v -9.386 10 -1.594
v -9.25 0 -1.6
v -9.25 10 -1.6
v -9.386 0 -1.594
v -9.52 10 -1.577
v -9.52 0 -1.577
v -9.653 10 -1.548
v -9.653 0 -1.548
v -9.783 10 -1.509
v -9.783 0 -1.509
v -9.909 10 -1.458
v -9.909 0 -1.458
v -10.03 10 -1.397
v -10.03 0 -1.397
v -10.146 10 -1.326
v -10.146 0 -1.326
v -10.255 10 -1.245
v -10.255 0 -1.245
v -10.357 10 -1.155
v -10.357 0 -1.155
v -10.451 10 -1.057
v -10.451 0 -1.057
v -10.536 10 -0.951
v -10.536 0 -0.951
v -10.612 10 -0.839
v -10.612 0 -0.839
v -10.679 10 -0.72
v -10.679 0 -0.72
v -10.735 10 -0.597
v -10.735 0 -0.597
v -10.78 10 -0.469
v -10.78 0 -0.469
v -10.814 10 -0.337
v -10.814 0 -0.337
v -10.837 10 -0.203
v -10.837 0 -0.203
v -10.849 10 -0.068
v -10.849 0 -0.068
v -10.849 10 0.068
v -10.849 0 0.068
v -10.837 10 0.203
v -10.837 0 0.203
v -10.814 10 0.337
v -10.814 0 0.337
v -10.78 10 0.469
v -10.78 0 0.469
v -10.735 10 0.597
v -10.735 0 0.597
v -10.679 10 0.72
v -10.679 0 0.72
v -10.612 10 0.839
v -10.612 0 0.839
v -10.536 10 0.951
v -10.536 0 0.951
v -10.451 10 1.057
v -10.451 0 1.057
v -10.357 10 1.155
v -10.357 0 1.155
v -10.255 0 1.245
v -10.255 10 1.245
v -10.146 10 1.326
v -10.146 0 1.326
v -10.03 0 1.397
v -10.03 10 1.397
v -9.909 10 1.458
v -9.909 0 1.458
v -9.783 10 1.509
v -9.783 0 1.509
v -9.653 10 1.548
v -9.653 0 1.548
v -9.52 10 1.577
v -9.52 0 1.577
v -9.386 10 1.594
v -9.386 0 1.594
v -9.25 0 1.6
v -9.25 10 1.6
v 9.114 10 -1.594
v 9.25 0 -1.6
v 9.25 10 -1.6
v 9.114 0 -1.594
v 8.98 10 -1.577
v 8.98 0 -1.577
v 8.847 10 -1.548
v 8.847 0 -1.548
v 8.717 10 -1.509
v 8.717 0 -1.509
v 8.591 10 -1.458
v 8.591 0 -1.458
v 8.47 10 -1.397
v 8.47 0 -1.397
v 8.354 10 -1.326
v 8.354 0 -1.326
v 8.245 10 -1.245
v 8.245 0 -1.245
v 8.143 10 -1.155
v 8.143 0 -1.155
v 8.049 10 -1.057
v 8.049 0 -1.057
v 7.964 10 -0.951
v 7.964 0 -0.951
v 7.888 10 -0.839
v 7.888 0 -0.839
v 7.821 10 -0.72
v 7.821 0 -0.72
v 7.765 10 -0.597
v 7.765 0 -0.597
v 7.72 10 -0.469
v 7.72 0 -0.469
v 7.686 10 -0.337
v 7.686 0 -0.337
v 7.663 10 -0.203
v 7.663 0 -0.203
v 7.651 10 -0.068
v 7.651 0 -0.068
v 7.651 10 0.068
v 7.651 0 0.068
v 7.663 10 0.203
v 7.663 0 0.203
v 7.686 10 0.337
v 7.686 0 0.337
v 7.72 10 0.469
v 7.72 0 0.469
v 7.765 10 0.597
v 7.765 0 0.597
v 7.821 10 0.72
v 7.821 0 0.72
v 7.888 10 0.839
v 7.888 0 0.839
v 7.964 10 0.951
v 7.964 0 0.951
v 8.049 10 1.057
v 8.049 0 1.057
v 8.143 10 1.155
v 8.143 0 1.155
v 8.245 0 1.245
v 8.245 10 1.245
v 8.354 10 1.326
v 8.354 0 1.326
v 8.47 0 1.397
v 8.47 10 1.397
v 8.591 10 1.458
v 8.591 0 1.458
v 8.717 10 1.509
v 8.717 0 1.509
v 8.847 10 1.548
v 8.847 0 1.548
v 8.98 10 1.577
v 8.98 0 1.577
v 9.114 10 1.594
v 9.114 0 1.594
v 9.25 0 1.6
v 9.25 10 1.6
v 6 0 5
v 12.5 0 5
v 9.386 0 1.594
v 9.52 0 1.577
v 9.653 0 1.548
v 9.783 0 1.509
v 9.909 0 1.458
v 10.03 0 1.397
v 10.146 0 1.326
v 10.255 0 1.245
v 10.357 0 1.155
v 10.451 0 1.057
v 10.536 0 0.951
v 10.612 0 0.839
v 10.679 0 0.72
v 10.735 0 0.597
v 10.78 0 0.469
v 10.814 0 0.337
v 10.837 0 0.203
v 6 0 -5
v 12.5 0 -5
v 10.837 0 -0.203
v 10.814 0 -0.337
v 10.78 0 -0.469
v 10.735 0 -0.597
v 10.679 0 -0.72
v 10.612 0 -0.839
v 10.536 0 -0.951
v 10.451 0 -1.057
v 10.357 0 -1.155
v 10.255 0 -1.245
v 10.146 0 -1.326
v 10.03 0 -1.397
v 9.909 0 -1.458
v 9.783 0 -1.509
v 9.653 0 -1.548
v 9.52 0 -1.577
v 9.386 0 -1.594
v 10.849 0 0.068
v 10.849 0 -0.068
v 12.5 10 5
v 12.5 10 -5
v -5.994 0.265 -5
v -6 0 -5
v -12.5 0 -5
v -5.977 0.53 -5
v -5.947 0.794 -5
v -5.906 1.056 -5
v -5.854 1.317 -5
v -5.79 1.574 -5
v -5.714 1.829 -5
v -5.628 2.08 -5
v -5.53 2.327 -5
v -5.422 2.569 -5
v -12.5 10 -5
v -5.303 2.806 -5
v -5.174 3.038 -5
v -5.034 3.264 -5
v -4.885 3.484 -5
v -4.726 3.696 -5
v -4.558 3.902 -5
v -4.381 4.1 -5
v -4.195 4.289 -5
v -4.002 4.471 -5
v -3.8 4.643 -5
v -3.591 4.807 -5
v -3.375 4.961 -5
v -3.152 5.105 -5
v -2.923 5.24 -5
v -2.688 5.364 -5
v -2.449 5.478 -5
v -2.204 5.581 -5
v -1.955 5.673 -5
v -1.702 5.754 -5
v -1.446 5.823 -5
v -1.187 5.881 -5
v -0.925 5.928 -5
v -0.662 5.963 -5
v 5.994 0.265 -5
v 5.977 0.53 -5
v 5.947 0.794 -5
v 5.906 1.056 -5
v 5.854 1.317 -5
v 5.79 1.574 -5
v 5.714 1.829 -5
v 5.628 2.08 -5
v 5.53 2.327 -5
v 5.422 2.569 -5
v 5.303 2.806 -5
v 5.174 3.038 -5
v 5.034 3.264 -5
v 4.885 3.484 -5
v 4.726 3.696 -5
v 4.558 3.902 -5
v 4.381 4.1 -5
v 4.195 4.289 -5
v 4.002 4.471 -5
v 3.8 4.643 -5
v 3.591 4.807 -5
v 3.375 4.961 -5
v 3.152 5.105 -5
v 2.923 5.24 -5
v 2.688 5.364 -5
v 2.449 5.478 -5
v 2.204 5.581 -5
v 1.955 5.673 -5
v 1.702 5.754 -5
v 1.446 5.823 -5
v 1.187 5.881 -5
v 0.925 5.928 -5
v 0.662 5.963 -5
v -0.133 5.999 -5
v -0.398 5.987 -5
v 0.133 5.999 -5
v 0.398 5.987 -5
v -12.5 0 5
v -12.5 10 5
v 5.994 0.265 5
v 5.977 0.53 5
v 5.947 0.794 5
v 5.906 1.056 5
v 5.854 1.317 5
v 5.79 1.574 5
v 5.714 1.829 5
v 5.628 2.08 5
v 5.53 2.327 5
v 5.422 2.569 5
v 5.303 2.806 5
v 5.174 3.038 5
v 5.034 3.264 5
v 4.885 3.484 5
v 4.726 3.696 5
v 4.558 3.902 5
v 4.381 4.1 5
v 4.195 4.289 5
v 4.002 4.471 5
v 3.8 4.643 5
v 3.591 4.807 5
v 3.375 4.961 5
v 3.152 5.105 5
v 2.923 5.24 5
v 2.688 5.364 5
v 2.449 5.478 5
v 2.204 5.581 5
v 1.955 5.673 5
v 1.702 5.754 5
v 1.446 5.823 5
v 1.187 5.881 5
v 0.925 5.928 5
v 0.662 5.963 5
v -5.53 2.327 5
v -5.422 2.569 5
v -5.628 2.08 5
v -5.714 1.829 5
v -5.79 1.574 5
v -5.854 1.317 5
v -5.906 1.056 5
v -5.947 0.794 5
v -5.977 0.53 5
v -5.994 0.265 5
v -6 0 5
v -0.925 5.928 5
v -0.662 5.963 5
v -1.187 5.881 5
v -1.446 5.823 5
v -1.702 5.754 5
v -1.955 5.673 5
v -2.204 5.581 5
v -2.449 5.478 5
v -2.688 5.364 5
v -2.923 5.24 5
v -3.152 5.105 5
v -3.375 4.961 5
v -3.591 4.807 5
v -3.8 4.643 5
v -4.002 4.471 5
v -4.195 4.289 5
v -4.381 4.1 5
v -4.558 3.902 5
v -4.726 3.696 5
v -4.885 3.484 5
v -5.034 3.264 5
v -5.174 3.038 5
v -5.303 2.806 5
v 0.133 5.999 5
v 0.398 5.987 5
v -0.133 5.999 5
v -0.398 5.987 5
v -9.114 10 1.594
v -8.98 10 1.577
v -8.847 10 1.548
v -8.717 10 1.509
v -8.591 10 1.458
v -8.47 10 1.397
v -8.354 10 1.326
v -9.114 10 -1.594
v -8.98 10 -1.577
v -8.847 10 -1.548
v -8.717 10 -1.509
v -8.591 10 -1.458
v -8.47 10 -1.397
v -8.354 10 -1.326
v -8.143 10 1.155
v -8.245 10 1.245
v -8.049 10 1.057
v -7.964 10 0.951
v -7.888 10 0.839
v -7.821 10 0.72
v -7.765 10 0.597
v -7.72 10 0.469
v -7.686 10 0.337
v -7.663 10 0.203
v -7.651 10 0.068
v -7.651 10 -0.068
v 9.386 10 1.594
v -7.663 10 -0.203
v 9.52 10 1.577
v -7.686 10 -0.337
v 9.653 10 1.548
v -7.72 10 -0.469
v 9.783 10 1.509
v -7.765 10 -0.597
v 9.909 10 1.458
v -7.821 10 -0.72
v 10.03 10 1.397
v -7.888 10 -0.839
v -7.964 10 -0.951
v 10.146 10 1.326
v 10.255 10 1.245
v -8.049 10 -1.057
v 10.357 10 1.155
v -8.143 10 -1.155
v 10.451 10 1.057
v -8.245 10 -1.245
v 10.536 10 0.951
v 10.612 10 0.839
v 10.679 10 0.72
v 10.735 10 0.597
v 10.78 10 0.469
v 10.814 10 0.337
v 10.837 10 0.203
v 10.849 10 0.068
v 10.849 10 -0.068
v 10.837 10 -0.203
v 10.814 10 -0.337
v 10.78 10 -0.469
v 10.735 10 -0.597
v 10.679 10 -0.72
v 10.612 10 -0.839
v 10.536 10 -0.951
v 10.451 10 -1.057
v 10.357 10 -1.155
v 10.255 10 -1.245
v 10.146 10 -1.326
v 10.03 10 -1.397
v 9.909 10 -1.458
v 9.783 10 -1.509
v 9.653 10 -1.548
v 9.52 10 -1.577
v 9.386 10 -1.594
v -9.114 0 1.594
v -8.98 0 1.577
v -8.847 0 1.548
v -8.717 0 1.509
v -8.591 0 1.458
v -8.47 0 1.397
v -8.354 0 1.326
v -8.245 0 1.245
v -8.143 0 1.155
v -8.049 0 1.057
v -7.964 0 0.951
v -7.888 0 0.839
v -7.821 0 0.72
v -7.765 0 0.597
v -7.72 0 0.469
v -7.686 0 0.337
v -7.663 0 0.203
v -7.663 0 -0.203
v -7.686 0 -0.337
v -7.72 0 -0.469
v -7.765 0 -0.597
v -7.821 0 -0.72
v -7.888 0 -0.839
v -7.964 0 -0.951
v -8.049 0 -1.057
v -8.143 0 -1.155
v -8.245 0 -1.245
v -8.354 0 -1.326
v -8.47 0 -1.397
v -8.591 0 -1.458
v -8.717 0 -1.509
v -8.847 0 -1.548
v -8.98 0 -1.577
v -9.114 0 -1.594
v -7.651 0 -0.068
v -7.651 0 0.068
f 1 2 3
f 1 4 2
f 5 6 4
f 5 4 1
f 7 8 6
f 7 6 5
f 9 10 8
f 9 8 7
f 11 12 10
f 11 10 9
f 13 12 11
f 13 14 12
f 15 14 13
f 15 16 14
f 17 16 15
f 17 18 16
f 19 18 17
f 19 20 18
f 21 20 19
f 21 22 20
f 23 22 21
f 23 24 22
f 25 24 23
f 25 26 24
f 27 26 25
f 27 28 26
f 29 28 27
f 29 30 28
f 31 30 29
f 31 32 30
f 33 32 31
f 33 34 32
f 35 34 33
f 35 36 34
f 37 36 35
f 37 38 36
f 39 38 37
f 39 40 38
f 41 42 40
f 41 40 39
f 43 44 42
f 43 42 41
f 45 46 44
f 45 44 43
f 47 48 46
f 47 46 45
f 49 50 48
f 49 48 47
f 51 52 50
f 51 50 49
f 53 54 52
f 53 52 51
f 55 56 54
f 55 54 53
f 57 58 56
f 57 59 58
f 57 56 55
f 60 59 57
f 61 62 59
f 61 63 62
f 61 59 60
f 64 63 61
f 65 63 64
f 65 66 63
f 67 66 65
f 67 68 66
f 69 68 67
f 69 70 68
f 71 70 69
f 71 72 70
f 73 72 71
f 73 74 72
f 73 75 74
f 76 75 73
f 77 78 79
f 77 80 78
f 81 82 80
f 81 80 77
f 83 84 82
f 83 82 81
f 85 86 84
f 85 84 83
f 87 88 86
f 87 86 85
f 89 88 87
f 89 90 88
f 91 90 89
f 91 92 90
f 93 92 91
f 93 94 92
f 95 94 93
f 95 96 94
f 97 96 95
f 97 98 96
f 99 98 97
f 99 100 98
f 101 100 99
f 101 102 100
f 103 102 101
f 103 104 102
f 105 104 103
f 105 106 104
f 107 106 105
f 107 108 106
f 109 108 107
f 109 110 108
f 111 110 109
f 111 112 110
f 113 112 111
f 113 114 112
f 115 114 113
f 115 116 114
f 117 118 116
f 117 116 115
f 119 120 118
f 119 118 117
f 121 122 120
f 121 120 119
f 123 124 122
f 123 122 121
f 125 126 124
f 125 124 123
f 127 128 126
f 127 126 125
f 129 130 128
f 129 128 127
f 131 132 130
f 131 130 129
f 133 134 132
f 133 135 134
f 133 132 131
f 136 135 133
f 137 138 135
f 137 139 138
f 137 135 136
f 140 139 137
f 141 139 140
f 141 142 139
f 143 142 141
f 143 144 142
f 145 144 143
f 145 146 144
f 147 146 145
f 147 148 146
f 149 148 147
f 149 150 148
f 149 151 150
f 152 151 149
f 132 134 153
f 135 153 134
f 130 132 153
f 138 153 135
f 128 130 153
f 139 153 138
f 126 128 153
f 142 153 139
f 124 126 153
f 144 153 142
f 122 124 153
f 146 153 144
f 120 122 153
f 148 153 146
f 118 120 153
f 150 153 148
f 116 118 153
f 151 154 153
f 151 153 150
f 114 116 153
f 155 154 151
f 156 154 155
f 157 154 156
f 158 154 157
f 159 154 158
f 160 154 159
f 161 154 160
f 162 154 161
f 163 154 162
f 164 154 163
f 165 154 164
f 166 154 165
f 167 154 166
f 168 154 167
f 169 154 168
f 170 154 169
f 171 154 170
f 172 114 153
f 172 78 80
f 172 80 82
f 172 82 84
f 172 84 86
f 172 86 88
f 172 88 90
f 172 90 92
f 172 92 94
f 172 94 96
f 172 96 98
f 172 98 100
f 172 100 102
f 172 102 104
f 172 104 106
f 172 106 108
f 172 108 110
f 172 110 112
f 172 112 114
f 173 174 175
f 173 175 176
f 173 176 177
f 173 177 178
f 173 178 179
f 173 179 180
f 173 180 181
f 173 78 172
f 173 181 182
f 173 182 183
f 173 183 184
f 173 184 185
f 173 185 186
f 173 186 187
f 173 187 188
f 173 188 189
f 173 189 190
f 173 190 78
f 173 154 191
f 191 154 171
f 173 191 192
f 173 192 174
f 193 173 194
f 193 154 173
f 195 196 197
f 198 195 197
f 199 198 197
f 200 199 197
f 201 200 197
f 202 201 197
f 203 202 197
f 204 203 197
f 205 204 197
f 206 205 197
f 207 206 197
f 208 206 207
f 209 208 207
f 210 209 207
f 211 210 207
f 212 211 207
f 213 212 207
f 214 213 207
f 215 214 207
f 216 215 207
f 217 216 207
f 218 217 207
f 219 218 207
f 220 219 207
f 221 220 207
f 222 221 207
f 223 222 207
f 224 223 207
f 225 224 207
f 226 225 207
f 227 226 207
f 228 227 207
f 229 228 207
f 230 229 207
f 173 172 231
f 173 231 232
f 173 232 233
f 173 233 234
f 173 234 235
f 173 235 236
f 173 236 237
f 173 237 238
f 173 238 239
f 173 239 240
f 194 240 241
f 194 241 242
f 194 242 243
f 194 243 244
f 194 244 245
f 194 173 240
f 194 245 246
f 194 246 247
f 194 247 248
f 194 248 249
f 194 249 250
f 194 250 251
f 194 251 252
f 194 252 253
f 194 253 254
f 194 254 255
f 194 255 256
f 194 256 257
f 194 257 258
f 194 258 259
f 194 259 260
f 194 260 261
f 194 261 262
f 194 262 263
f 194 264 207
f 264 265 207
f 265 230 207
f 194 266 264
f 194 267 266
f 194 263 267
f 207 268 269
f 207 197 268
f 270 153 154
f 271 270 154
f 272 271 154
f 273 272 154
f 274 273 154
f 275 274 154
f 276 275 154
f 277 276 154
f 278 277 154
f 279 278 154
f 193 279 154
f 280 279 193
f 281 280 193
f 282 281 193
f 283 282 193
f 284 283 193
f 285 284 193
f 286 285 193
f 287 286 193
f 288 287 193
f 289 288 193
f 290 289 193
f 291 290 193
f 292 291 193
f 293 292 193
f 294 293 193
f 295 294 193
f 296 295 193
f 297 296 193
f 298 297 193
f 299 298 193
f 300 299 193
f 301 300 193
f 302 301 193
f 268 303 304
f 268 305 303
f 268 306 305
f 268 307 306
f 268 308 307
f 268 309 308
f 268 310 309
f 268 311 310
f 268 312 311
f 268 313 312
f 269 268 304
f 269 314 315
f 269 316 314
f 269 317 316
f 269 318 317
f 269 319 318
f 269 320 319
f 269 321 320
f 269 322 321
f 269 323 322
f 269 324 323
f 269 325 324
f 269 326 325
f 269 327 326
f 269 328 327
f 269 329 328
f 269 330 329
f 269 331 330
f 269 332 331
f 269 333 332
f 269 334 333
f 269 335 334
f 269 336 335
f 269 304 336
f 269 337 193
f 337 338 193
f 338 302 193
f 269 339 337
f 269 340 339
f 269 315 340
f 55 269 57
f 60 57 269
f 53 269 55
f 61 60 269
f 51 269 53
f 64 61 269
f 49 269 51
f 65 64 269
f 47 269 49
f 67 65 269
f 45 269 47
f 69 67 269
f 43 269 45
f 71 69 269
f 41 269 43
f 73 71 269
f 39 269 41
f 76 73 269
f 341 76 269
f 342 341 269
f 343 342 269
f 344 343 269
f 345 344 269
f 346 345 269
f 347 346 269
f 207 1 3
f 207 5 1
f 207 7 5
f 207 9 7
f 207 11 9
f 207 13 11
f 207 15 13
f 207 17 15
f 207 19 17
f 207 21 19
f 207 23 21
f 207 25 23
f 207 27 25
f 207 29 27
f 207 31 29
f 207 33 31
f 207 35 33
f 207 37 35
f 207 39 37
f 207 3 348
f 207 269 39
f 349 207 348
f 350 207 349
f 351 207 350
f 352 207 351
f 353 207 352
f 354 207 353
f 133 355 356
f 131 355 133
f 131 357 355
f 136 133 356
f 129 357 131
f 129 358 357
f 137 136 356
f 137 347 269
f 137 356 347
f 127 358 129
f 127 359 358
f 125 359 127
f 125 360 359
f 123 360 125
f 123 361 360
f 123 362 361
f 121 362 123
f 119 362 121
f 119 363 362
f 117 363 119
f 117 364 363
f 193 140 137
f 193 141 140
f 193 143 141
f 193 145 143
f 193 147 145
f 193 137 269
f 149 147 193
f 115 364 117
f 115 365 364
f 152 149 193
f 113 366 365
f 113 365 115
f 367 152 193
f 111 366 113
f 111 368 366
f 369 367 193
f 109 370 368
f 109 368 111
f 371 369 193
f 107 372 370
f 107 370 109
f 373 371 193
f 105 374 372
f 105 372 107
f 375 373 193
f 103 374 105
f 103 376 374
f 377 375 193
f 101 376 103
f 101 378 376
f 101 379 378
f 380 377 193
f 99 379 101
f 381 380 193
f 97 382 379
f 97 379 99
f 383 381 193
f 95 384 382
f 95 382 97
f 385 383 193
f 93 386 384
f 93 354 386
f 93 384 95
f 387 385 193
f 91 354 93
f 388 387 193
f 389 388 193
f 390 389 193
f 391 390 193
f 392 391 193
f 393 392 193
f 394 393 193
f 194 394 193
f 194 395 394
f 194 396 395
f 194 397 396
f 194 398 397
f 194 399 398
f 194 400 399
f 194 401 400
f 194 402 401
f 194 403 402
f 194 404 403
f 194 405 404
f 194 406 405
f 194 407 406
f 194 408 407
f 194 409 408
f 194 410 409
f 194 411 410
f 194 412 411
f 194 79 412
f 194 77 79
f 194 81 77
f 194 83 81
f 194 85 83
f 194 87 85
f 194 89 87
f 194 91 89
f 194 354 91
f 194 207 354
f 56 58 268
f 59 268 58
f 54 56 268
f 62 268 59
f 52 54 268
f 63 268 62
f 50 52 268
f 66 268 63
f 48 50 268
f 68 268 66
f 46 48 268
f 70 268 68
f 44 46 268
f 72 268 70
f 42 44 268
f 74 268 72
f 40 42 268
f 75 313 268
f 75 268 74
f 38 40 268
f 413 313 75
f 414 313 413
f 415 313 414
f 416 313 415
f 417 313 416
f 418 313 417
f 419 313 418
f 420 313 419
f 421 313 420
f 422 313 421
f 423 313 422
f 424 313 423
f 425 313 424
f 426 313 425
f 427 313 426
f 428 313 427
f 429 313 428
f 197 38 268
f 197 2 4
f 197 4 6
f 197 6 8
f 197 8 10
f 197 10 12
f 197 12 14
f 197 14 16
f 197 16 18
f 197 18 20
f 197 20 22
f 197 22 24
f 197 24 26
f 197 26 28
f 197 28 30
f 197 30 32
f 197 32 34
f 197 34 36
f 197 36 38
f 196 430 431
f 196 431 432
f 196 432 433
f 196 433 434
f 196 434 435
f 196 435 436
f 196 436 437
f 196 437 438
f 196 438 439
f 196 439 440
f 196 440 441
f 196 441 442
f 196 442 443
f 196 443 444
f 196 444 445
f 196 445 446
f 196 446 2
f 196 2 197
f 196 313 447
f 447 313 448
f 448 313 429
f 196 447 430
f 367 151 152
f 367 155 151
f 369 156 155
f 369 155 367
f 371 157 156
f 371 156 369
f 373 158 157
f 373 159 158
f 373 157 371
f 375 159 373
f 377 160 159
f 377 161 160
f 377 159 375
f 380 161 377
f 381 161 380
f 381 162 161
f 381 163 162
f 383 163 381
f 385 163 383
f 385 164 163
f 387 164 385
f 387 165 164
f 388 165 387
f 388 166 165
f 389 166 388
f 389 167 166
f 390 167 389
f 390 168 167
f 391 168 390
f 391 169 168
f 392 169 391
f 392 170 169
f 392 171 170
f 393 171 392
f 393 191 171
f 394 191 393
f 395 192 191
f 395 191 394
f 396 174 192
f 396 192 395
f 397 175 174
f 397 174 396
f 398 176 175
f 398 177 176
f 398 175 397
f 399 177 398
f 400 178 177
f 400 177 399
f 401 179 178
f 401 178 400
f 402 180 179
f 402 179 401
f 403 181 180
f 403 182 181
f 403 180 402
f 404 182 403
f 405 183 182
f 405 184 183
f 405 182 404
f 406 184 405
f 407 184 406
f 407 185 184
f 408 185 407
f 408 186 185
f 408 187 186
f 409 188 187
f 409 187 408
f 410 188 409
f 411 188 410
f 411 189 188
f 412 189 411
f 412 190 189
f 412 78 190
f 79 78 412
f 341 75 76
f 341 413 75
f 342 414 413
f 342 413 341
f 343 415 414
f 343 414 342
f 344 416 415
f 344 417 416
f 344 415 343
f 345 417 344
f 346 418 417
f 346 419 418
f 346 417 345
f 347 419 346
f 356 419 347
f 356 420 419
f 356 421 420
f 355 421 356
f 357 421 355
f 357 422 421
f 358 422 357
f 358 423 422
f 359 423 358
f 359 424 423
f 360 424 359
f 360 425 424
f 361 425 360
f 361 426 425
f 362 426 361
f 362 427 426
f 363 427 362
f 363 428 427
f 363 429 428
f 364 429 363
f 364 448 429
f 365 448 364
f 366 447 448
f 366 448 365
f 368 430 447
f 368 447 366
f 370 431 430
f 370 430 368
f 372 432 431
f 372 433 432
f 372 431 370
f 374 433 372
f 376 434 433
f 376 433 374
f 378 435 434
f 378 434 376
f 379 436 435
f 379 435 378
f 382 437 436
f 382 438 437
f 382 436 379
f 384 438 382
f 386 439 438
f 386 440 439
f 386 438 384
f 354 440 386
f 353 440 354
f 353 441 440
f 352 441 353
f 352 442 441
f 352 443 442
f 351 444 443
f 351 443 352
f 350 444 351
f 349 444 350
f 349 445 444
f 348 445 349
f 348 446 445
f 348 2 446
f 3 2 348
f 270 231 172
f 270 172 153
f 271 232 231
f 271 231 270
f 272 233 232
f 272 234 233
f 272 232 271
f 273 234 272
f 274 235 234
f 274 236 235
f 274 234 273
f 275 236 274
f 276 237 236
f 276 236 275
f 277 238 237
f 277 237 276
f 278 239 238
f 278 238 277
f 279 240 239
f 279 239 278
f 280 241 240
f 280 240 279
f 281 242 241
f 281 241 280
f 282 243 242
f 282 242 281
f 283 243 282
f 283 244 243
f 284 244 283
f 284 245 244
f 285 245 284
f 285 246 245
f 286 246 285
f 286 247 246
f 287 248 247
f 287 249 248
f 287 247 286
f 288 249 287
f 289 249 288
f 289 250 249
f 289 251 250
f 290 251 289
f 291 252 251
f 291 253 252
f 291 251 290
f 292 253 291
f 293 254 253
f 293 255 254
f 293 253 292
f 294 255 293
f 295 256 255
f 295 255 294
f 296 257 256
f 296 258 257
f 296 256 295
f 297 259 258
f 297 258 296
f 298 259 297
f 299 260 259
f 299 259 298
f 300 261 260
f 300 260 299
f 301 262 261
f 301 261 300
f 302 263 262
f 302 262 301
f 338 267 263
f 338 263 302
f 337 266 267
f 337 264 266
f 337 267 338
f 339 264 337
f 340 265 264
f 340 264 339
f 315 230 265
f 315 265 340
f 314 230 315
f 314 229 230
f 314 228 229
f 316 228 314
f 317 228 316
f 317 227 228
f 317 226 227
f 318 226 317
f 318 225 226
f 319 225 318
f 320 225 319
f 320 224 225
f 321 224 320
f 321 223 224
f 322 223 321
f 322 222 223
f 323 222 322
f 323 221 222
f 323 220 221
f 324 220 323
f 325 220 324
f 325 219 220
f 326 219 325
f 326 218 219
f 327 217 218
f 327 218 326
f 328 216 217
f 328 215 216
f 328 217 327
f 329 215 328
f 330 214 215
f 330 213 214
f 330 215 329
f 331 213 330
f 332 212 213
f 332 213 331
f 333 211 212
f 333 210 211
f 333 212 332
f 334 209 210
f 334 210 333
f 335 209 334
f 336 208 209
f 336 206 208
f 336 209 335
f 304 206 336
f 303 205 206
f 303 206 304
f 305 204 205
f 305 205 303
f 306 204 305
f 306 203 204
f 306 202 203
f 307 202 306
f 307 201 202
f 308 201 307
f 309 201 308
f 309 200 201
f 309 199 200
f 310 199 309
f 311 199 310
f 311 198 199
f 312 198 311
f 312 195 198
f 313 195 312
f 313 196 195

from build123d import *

# Parameters (mm, degrees)
SKETCH1_W           = 25
SKETCH1_H           = 10
BOSS_EXTRUDE1_DEPTH = 10
SKETCH2_R           = 1.6
CUT_EXTRUDE1_DEPTH  = 17.770509831
SKETCH3_R           = 6
CUT_EXTRUDE2_DEPTH  = 25


with BuildPart() as part:
    # Sketch1 → Boss-Extrude1 (new body)
    with BuildSketch(Plane(origin=(0, 0, 0), x_dir=(1, 0, 0), z_dir=(0, 1, 0))):
        Rectangle(SKETCH1_W, SKETCH1_H)
    extrude(amount=BOSS_EXTRUDE1_DEPTH)

    # Sketch2 → Cut-Extrude1 (cut, through all)
    with BuildSketch(Plane(origin=(0, 10, 0), x_dir=(1, 0, 0), z_dir=(0, 1, 0))):
        with Locations(Location((-9.25, 0, 0), (0, 0, 270))):
            Circle(SKETCH2_R)
        with Locations(Location((9.25, 0, 0), (0, 0, 270))):
            Circle(SKETCH2_R)
    extrude(amount=-CUT_EXTRUDE1_DEPTH, mode=Mode.SUBTRACT)

    # Sketch3 → Cut-Extrude2 (cut)
    with BuildSketch(Plane.XY.offset(5)):
        Circle(SKETCH3_R)
    extrude(amount=-CUT_EXTRUDE2_DEPTH, mode=Mode.SUBTRACT)


solid = part.part
